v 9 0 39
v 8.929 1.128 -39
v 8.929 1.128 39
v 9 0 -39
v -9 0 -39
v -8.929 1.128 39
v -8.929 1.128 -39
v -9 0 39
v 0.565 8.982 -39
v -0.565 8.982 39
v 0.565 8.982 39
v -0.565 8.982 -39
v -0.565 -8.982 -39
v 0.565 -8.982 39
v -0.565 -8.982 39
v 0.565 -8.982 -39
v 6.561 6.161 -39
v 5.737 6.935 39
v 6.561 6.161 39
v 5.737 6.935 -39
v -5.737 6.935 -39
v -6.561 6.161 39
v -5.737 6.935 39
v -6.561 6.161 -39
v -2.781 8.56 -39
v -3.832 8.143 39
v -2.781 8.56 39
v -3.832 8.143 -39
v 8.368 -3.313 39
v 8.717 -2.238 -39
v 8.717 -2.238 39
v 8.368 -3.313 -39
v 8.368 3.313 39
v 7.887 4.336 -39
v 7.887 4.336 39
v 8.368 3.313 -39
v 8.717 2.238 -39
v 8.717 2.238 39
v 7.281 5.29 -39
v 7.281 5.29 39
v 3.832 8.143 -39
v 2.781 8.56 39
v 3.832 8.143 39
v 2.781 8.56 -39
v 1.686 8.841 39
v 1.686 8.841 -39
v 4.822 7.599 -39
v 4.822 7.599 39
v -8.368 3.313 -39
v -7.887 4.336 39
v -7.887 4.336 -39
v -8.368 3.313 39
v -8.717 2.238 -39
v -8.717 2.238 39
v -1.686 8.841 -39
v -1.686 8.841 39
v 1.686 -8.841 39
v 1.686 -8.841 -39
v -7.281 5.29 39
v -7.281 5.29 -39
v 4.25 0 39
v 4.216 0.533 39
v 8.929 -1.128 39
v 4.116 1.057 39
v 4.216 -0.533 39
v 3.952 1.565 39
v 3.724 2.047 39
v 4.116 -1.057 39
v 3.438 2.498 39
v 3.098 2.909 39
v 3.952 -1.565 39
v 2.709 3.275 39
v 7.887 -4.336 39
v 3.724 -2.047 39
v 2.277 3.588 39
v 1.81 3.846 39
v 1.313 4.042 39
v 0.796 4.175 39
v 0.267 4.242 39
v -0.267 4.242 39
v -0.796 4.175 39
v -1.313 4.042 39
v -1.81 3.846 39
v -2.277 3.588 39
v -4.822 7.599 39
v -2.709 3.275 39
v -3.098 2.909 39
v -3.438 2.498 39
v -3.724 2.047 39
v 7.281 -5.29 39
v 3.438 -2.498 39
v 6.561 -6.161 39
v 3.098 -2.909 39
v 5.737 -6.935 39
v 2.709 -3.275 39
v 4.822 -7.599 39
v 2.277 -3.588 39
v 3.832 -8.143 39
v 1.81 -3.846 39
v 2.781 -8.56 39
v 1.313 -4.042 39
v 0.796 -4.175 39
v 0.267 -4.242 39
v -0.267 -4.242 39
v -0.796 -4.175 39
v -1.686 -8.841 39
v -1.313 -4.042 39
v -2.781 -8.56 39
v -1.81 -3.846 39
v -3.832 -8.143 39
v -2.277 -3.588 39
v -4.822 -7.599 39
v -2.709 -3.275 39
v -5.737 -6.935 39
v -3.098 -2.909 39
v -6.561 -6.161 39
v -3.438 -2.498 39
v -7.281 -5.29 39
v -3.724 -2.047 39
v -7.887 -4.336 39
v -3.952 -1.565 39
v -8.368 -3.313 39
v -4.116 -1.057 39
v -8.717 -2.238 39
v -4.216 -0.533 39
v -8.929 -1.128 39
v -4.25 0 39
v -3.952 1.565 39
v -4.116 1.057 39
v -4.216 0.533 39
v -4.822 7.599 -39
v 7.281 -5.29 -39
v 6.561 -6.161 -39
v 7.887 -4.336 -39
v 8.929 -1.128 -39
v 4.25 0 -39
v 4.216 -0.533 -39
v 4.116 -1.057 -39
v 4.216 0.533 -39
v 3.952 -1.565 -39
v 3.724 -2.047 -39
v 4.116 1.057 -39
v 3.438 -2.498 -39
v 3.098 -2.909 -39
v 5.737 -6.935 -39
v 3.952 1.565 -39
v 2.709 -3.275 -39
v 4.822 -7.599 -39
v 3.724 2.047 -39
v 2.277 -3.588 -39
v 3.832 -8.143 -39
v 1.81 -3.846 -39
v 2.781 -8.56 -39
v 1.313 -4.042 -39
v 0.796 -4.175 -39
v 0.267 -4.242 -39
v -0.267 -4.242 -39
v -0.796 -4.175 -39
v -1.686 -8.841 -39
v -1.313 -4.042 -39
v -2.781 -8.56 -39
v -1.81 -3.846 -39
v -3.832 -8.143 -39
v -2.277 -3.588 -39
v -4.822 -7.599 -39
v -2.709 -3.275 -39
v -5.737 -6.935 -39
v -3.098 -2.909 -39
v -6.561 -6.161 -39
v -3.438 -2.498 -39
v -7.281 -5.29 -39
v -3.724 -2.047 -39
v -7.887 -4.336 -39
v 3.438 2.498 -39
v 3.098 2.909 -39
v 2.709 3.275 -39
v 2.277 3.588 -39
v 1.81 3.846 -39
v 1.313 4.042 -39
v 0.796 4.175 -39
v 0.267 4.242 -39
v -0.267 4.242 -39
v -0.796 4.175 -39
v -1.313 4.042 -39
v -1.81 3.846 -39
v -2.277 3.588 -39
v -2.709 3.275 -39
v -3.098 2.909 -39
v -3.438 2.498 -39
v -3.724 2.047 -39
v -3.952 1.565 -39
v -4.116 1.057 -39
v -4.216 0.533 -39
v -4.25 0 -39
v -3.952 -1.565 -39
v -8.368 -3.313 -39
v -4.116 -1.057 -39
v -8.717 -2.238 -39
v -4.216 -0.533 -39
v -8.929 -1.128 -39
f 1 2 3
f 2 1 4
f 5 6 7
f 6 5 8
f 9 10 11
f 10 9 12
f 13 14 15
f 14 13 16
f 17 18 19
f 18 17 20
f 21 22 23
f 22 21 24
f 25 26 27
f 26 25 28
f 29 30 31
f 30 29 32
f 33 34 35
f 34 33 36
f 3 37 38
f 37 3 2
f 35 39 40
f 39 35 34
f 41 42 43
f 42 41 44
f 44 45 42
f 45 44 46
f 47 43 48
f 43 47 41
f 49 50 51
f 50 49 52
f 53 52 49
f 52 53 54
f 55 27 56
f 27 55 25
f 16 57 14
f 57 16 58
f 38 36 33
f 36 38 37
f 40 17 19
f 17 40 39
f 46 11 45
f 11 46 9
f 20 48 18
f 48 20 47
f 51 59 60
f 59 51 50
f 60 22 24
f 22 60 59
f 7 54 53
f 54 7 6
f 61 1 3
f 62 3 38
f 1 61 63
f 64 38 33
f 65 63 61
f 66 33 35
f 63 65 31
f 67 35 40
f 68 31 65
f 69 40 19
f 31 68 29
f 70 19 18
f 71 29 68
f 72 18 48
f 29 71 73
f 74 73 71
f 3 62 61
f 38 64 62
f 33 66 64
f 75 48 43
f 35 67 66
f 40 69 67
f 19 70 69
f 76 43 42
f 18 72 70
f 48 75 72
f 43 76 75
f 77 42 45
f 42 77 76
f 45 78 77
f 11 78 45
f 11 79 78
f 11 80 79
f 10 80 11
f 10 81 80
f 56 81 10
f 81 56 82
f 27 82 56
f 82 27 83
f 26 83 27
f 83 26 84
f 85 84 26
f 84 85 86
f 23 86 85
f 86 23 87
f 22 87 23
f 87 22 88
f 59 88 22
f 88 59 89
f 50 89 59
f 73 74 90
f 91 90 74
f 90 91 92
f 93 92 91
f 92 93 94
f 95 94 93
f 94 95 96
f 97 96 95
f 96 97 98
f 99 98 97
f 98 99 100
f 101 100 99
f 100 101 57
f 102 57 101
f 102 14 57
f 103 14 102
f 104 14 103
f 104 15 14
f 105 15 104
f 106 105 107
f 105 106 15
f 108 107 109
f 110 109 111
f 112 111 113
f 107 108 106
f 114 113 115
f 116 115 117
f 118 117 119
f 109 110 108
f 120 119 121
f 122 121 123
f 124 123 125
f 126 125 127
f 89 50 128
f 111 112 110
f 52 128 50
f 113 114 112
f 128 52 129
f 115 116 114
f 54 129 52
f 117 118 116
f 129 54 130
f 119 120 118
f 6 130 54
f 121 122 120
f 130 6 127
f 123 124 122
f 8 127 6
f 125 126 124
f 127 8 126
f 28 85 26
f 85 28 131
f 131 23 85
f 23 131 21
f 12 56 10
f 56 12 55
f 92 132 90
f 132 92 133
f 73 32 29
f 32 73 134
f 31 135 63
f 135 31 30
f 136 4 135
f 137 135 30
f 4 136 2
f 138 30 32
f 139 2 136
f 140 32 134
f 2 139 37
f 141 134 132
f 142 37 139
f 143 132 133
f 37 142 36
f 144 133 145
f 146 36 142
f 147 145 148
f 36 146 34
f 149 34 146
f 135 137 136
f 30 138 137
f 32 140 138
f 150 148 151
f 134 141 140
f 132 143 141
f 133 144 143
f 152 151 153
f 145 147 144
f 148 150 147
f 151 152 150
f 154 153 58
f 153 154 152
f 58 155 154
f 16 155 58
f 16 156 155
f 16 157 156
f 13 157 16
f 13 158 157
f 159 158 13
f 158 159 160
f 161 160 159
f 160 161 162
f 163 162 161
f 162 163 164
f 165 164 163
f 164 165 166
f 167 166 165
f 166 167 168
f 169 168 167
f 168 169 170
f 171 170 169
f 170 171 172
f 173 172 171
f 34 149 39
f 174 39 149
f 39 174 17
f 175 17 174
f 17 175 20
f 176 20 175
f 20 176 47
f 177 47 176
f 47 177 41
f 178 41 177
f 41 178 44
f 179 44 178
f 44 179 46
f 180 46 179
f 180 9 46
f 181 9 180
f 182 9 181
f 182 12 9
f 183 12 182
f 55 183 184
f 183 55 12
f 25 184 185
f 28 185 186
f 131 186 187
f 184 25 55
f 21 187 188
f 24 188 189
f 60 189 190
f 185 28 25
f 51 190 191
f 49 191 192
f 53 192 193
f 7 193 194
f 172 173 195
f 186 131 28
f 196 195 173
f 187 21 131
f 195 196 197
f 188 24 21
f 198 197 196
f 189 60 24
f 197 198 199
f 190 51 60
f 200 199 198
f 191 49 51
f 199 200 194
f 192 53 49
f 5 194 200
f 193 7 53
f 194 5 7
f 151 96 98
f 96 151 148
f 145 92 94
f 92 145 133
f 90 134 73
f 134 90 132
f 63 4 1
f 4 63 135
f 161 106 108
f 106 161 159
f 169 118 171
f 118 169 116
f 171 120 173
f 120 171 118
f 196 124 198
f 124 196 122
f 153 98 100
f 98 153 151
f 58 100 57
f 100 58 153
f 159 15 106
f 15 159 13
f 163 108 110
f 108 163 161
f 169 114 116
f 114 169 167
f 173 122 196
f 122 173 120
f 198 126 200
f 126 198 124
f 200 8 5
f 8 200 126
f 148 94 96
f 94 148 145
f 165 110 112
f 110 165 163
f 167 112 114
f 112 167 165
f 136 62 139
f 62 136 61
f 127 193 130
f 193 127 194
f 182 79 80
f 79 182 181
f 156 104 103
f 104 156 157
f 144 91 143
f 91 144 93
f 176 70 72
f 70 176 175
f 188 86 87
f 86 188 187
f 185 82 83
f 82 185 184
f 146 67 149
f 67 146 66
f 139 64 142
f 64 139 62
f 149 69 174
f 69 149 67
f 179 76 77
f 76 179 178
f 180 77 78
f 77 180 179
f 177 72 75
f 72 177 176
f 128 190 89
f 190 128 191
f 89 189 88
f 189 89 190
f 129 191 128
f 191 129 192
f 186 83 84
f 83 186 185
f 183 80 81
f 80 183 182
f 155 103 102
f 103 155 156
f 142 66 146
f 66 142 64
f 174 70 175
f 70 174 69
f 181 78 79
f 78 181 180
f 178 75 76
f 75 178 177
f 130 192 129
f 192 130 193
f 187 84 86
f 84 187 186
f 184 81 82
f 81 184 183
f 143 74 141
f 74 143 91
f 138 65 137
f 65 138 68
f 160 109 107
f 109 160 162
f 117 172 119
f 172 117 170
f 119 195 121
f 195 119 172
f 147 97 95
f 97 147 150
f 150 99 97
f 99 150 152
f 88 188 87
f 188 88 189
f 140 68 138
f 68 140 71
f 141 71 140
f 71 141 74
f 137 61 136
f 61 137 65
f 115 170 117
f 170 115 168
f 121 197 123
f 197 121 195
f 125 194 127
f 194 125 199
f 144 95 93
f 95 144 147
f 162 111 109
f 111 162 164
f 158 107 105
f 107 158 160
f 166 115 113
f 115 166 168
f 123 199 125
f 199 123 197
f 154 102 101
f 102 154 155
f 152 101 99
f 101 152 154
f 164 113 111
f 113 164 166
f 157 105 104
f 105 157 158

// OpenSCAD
$fn = 50;


difference() {
	union() {
		translate(v = [0, 0, -39.0000000000]) {
			cylinder(h = 78, r = 9.0000000000);
		}
	}
	union() {
		translate(v = [0, 0, -100.0000000000]) {
			cylinder(h = 200, r = 4.2500000000);
		}
	}
}
